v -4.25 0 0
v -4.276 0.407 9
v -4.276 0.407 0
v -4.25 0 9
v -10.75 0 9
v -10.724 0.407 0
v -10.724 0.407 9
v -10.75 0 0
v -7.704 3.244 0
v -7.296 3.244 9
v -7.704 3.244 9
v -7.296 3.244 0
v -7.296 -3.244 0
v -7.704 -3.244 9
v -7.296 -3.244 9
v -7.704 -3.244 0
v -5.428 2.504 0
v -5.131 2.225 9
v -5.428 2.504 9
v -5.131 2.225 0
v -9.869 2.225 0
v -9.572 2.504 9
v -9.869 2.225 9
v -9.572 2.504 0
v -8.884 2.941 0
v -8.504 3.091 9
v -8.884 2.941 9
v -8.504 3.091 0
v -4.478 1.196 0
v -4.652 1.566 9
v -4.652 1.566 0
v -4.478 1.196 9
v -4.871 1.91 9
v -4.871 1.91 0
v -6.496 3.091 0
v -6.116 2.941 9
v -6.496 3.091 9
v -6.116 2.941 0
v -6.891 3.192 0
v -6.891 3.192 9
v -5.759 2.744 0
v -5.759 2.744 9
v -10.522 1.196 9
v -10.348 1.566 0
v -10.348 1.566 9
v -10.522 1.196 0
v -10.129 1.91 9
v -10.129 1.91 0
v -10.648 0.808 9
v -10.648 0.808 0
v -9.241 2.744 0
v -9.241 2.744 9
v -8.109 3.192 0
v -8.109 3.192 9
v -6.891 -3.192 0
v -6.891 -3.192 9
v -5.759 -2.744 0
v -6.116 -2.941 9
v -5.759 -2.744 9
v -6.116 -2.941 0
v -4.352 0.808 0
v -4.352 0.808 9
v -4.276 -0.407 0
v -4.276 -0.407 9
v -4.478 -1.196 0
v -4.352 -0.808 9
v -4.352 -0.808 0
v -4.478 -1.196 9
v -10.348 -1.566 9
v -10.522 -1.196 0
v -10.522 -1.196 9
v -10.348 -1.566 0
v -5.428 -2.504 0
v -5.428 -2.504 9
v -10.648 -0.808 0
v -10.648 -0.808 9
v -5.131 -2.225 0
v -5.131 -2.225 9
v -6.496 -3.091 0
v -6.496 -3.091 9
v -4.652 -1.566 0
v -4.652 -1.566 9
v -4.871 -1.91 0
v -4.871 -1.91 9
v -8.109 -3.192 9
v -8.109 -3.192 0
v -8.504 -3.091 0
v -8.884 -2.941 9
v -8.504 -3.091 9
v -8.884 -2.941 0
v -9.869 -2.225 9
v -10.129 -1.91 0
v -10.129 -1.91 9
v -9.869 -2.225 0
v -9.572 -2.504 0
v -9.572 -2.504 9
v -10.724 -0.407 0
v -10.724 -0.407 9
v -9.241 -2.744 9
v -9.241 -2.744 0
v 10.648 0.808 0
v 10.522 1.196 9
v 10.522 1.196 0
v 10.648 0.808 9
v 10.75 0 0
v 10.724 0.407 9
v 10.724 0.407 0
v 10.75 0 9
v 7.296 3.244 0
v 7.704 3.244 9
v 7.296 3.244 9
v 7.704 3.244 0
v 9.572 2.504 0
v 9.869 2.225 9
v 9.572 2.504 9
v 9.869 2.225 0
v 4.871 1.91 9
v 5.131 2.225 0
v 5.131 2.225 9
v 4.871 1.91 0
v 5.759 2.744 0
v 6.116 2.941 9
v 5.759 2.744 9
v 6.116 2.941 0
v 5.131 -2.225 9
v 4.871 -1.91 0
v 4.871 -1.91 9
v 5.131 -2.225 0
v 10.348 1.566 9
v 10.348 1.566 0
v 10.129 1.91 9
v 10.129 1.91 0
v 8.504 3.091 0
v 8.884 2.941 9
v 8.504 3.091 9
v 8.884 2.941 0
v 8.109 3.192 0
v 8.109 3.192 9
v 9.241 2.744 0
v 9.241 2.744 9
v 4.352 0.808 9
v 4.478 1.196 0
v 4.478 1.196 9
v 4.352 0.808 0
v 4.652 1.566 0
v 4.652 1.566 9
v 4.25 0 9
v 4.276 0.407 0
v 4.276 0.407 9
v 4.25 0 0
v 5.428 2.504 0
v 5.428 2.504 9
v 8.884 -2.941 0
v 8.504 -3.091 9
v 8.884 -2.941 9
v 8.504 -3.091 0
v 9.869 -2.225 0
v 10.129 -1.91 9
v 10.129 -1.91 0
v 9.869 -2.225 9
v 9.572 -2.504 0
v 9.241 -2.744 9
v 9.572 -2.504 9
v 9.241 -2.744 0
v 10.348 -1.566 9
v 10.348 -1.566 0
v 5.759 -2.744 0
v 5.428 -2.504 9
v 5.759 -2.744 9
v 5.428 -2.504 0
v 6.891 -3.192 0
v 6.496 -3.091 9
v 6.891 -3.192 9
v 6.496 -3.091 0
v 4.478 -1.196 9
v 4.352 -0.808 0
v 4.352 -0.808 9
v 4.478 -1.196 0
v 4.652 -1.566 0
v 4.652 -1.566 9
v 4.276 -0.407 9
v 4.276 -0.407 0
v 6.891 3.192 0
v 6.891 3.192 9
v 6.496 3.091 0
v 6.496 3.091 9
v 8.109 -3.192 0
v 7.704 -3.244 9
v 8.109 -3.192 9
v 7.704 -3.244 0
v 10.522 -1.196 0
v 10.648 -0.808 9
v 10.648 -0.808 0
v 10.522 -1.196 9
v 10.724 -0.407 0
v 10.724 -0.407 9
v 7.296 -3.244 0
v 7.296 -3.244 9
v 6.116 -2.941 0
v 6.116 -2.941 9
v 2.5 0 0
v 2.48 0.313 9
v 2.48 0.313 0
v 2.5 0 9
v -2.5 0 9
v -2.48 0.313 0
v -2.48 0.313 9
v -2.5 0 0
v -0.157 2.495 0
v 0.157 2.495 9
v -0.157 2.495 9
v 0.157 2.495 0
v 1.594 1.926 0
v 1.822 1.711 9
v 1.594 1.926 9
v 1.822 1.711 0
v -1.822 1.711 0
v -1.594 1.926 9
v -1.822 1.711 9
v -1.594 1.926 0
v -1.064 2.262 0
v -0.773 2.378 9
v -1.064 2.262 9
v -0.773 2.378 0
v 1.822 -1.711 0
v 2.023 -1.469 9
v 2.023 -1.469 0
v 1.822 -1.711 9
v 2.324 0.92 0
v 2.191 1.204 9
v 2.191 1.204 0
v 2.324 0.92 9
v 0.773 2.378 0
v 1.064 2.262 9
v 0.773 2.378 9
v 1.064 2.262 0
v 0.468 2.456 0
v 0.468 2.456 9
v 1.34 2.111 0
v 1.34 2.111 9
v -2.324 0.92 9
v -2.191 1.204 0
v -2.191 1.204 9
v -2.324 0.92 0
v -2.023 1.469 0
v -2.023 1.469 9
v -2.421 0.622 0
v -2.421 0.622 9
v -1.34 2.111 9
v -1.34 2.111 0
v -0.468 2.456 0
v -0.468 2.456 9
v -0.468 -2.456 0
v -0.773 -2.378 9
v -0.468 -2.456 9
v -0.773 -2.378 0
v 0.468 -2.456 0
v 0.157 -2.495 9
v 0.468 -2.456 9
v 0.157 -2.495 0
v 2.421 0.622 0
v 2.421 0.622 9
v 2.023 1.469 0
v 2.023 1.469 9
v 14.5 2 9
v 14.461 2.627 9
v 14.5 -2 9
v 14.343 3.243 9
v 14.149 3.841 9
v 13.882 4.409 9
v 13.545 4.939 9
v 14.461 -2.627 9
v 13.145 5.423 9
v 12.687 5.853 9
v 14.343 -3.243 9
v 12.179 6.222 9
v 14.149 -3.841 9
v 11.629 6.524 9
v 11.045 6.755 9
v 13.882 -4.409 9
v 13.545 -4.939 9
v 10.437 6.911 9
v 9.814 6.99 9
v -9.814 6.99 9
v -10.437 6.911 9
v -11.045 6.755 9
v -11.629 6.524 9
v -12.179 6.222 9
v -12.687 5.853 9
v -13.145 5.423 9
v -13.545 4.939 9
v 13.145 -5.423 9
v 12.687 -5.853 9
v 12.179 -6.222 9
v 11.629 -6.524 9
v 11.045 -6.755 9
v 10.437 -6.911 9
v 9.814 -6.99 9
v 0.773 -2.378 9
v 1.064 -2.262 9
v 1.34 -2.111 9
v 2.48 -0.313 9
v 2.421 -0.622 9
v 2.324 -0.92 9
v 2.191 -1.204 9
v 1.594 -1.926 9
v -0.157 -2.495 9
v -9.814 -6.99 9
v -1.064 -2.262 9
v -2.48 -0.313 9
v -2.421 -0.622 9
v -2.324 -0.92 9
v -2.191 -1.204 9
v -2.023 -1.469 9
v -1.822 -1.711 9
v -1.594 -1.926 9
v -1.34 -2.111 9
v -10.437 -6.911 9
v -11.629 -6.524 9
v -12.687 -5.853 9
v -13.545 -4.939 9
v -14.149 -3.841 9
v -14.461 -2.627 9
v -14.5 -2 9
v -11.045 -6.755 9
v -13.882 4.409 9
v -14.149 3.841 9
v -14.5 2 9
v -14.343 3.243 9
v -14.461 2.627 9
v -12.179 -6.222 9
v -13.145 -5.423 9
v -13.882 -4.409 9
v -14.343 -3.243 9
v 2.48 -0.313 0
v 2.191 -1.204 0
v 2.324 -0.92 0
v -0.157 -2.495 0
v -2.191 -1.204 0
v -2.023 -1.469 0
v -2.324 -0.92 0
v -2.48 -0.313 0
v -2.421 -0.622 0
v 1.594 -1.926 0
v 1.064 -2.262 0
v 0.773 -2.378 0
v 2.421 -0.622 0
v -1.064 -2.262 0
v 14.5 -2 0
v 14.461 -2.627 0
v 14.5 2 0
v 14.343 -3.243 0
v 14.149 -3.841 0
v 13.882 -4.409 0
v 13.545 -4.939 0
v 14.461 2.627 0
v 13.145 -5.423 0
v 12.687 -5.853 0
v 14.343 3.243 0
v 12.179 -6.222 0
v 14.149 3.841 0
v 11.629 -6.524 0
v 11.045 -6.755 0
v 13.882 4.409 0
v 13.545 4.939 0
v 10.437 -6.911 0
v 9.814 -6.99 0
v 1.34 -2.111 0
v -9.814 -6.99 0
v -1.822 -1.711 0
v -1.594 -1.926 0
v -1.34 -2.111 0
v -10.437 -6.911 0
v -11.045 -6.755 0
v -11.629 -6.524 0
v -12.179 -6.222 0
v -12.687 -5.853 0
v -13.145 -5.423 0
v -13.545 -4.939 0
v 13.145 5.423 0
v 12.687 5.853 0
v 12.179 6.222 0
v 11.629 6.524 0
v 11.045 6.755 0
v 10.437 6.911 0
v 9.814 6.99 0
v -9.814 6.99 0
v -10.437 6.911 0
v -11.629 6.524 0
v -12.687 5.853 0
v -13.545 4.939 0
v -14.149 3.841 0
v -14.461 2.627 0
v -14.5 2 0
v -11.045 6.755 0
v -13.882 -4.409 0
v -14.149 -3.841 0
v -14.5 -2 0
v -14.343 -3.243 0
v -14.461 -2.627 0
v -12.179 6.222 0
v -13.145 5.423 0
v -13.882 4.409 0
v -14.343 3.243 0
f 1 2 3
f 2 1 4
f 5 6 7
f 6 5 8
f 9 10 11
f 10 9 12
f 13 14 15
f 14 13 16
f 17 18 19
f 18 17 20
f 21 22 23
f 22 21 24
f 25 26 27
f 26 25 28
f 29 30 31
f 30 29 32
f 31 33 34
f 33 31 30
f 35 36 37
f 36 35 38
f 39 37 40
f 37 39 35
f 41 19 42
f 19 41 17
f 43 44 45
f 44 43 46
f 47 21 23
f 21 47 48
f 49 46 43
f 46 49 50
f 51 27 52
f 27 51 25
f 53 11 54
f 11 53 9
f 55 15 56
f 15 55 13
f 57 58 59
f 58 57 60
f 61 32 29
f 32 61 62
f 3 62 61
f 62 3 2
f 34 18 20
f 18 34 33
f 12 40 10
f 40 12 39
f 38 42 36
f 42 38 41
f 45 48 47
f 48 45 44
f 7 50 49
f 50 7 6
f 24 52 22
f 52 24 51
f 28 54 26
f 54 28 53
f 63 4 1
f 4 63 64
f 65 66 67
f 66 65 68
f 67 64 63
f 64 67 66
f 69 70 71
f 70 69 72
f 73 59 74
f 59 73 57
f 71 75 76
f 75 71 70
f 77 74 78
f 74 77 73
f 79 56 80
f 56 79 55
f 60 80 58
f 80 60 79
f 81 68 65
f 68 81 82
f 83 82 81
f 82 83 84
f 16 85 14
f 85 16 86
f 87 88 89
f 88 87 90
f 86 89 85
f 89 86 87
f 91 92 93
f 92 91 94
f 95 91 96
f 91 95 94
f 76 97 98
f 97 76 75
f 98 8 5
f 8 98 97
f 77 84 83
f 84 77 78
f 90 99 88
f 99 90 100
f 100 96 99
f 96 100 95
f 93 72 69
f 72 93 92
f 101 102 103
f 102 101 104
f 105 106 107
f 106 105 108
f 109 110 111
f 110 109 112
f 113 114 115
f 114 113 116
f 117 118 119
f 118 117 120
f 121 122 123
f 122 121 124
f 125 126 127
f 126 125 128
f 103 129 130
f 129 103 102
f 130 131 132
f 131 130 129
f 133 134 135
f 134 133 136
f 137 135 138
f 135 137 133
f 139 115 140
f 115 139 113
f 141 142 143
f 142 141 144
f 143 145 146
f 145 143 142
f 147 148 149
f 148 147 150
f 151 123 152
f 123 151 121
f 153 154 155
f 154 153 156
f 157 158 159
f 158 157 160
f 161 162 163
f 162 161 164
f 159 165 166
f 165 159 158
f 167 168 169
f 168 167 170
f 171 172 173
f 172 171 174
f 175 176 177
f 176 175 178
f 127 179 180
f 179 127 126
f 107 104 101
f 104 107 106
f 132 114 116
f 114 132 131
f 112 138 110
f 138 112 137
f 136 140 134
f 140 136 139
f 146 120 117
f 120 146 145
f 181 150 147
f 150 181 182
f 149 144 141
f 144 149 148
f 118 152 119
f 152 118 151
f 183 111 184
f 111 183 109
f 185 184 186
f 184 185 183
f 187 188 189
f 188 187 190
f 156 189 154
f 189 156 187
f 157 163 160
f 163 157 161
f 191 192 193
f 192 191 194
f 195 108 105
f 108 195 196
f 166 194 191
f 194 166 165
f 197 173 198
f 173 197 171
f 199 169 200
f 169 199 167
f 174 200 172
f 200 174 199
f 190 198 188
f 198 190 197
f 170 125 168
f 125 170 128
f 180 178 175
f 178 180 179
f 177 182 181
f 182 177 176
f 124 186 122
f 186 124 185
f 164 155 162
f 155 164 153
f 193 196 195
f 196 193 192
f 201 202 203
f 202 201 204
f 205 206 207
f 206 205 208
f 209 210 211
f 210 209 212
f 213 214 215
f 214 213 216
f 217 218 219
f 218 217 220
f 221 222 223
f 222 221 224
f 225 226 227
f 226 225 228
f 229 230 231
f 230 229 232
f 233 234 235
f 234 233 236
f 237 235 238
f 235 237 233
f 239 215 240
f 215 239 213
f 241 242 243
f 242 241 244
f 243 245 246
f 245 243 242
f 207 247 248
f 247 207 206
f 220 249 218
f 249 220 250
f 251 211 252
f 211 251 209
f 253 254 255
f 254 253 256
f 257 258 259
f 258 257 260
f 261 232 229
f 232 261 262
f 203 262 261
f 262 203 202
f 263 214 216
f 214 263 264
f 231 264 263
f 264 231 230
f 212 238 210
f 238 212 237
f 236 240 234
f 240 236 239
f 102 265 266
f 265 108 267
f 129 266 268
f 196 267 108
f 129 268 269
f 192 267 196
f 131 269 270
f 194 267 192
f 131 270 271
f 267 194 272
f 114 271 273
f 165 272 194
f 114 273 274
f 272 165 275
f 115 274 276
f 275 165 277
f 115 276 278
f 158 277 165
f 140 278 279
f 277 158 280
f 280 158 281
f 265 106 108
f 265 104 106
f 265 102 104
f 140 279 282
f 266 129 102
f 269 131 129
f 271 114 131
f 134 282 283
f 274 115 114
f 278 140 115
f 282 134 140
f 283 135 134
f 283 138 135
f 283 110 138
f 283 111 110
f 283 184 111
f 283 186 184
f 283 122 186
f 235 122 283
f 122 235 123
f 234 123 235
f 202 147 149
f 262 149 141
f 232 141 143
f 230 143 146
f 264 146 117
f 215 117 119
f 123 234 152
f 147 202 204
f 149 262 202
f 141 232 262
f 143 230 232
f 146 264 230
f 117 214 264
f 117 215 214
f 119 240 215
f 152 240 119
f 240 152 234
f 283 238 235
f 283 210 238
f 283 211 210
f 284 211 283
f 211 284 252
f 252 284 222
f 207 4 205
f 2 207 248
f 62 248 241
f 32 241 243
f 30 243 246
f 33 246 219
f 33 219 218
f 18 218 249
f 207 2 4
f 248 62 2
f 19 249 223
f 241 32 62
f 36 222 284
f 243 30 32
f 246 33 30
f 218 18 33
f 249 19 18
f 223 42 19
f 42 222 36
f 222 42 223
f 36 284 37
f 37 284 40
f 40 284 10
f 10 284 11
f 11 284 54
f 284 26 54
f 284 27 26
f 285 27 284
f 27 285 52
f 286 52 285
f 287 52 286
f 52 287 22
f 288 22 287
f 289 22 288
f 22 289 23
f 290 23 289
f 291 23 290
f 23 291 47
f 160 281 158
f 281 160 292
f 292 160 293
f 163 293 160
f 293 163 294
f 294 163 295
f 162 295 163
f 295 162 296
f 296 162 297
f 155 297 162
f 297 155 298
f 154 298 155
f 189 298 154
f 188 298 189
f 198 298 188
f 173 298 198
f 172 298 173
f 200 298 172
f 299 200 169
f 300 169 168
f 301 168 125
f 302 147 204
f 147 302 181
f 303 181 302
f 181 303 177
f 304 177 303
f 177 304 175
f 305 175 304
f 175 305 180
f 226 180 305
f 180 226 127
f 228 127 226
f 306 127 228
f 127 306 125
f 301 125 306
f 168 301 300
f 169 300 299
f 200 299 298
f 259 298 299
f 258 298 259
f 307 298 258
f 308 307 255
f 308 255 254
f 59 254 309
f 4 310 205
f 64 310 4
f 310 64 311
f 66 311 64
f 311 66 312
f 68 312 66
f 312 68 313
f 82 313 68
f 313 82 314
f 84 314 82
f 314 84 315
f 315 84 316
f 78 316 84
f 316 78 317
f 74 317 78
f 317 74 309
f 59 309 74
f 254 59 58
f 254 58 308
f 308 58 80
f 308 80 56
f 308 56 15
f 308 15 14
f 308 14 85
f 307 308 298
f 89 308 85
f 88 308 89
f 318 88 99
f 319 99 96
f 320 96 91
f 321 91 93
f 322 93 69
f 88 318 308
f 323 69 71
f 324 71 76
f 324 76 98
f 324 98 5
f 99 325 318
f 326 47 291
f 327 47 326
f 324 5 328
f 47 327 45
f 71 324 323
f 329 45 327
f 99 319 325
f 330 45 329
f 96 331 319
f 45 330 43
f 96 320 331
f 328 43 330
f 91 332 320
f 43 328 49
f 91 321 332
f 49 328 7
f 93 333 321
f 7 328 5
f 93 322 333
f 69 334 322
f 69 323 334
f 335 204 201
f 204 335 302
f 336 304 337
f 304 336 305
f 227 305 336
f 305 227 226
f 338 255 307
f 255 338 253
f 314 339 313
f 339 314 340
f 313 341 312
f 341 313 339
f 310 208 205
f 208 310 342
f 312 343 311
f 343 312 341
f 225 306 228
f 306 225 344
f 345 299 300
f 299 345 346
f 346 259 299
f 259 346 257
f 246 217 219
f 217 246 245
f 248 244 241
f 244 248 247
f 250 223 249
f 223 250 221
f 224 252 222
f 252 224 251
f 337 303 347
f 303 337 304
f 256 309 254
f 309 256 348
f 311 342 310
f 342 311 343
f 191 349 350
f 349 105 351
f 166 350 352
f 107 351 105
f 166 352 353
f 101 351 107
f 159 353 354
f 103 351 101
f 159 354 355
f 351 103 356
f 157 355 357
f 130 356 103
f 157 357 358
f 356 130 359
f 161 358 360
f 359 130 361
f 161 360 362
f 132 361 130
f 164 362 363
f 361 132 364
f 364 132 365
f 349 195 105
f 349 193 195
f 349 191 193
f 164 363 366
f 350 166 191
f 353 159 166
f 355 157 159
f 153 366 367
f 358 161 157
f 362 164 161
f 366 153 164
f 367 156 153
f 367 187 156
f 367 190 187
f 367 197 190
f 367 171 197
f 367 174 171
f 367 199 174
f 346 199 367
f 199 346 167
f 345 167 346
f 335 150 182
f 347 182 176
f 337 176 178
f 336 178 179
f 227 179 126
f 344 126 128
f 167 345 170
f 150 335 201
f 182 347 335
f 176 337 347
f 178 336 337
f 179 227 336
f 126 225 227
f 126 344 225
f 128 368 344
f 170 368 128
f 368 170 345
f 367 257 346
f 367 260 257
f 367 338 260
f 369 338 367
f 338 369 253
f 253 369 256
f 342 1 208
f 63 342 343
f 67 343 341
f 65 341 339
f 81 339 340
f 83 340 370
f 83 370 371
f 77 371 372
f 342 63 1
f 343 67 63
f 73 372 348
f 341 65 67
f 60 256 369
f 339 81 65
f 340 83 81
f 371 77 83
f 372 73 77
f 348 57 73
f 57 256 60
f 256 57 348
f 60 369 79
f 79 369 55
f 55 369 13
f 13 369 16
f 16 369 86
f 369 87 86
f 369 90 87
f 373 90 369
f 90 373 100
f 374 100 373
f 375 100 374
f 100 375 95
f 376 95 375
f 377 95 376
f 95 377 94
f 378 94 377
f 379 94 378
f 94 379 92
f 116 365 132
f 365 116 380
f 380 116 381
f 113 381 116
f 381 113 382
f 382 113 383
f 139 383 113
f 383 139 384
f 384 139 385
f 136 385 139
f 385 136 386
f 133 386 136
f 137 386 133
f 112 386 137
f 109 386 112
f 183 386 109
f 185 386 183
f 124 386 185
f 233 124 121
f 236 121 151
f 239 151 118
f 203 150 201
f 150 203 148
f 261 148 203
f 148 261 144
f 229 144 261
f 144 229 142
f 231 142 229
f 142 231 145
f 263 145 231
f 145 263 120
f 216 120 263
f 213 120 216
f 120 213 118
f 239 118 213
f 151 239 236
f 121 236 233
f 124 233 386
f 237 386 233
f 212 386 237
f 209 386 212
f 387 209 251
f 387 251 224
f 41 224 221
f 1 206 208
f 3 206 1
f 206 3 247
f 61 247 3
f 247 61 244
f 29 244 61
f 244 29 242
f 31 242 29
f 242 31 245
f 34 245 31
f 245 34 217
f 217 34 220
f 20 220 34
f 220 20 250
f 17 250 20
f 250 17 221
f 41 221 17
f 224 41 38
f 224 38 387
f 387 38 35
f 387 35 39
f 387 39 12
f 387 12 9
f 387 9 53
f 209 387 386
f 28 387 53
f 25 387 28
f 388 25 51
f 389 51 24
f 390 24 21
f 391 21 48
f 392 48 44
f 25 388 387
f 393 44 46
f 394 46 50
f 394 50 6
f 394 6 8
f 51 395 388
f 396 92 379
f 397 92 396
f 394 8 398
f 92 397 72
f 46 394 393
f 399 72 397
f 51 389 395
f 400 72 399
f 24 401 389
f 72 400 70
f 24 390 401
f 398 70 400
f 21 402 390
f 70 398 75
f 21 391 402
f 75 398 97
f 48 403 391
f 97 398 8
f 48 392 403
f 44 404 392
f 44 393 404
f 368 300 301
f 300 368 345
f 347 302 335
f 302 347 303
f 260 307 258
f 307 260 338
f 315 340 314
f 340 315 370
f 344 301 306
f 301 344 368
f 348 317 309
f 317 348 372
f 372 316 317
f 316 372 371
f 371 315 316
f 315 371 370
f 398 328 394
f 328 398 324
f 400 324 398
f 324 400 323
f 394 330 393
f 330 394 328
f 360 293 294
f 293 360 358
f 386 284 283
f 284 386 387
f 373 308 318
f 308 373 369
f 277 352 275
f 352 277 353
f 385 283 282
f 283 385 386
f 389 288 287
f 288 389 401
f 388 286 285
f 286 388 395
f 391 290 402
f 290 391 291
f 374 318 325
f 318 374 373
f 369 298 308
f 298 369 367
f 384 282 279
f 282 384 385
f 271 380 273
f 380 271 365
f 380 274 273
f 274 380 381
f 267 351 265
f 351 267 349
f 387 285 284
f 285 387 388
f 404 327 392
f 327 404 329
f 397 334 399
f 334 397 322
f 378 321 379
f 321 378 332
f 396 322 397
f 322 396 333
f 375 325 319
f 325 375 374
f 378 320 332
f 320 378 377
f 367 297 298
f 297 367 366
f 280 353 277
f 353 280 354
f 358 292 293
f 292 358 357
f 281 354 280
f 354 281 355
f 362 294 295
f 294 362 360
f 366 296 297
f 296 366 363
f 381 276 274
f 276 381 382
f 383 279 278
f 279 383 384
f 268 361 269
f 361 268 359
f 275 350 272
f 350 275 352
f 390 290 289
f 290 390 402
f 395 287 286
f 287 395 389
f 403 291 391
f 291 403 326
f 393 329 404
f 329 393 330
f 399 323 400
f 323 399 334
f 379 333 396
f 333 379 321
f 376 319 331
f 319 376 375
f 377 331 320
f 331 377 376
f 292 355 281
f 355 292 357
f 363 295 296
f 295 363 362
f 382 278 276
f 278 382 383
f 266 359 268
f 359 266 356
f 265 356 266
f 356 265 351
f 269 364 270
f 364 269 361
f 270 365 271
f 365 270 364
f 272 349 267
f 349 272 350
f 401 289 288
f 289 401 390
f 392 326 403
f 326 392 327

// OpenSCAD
$fn = 50;


difference() {
	union() {
		hull() {
			translate(v = [-9.5000000000, 2.0000000000, 0]) {
				cylinder(h = 9, r = 5);
			}
			translate(v = [9.5000000000, 2.0000000000, 0]) {
				cylinder(h = 9, r = 5);
			}
			translate(v = [-9.5000000000, -2.0000000000, 0]) {
				cylinder(h = 9, r = 5);
			}
			translate(v = [9.5000000000, -2.0000000000, 0]) {
				cylinder(h = 9, r = 5);
			}
		}
	}
	union() {
		#translate(v = [-7.5000000000, 0.0000000000, 0]) {
			cylinder(h = 9, r = 3.2500000000);
		}
		#translate(v = [7.5000000000, 0.0000000000, 0]) {
			cylinder(h = 9, r = 3.2500000000);
		}
		#translate(v = [-7.5000000000, 0.0000000000, -100.0000000000]) {
			cylinder(h = 200, r = 3.2500000000);
		}
		#translate(v = [-7.5000000000, 0.0000000000, -100.0000000000]) {
			cylinder(h = 200, r = 3.2500000000);
		}
		#translate(v = [7.5000000000, 0.0000000000, -100.0000000000]) {
			cylinder(h = 200, r = 3.2500000000);
		}
		#translate(v = [7.5000000000, 0.0000000000, -100.0000000000]) {
			cylinder(h = 200, r = 3.2500000000);
		}
		#translate(v = [-7.5000000000, 0.0000000000, 0]) {
			cylinder(h = 9, r = 1.8000000000);
		}
		#translate(v = [7.5000000000, 0.0000000000, 0]) {
			cylinder(h = 9, r = 1.8000000000);
		}
		#translate(v = [-7.5000000000, 0.0000000000, 0]) {
			cylinder(h = 9, r = 1.8000000000);
		}
		#translate(v = [7.5000000000, 0.0000000000, 0]) {
			cylinder(h = 9, r = 1.8000000000);
		}
		#translate(v = [-7.5000000000, 0.0000000000, 0]) {
			cylinder(h = 9, r = 1.8000000000);
		}
		#translate(v = [7.5000000000, 0.0000000000, 0]) {
			cylinder(h = 9, r = 1.8000000000);
		}
		#cylinder(h = 9, r = 2.5000000000);
	}
}
